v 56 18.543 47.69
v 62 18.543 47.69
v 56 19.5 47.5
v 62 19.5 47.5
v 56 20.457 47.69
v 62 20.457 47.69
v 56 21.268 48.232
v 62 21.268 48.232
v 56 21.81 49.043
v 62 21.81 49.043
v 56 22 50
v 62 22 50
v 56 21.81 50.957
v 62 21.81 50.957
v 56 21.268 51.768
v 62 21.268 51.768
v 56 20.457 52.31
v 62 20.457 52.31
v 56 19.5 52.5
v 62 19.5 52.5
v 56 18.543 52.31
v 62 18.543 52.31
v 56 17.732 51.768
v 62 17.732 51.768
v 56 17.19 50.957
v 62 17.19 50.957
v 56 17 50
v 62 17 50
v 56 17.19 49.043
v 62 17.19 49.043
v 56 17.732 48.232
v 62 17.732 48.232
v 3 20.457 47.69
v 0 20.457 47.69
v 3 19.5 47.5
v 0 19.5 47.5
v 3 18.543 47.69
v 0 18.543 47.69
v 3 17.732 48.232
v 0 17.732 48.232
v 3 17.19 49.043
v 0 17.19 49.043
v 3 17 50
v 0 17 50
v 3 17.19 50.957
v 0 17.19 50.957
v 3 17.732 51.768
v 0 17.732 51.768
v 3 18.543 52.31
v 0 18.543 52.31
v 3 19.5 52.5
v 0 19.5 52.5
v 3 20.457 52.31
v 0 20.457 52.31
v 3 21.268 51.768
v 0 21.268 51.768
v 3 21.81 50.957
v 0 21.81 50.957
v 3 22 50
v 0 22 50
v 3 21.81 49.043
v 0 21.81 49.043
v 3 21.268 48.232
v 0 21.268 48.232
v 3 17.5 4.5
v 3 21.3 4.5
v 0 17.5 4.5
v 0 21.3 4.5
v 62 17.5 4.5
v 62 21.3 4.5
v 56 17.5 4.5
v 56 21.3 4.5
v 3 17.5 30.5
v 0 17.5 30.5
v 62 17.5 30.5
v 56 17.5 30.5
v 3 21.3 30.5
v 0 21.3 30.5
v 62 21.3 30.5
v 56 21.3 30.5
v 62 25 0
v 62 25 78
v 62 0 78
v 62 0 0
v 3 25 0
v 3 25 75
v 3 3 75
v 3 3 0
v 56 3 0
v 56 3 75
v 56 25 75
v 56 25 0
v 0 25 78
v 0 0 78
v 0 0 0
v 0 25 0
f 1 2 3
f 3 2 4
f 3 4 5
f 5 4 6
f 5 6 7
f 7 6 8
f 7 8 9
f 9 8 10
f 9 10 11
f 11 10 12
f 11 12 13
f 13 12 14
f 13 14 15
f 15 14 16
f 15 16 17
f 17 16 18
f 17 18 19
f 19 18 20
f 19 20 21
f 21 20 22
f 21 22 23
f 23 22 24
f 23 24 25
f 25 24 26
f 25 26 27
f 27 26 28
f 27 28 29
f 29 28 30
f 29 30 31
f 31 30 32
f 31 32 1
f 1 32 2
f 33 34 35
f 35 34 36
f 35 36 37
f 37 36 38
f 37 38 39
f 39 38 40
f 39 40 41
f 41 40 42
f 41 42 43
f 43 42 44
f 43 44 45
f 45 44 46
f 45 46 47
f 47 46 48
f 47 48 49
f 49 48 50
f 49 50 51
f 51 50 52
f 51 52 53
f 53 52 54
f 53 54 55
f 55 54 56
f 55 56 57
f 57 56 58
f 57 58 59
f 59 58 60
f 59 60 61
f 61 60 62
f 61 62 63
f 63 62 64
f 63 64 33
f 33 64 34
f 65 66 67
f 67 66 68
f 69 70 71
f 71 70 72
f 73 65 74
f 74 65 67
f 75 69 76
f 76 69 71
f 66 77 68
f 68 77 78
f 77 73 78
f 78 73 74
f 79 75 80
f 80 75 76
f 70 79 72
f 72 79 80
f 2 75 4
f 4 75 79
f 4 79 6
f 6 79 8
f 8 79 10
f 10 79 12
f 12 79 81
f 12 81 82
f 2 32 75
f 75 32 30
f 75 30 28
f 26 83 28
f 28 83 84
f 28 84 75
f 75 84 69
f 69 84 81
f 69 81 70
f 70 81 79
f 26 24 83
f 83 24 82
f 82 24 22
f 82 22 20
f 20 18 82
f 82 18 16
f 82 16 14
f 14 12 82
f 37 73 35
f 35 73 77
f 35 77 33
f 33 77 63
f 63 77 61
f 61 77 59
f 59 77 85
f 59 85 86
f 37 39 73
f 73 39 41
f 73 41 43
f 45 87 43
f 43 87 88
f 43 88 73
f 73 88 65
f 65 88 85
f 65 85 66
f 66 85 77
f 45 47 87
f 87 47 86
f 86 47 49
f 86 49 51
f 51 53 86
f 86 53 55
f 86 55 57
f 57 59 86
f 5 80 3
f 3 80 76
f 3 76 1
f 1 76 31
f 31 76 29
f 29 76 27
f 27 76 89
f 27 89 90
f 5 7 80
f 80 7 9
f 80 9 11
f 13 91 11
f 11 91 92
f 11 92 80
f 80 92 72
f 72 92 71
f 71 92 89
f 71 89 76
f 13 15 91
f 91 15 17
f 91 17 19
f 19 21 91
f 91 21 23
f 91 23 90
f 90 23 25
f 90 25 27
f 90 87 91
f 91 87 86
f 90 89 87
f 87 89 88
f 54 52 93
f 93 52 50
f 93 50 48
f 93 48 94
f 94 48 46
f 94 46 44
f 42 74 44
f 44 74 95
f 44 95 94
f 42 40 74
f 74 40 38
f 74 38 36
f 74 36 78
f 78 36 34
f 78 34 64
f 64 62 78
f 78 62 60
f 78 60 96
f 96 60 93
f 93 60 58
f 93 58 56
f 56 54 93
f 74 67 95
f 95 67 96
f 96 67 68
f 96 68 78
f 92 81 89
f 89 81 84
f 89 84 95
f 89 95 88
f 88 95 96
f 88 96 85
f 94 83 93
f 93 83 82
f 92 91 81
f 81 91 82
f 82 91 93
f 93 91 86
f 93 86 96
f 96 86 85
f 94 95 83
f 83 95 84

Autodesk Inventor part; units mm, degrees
ref_plane "YZ Plane" through (0, 0, 0) normal (1, 0, 0) x (0, 1, 0)
ref_plane "XZ Plane" through (0, 0, 0) normal (0, 1, 0) x (-1, 0, 0)
ref_plane "XY Plane" through (0, 0, 0) normal (0, 0, 1) x (1, 0, 0)
sketch "Sketch2" plane through (0, 0, 0) normal (0, 1, 0) x (-1, 0, 0)
  line L0 (0, 0) -> (-59, 0)
  line L1 (-59, 0) -> (-59, 78)
  line L2 (-59, 78) -> (0, 78)
  line L3 (0, 78) -> (0, 0)
  dimension "d0" = 59
  dimension "d1" = 78
extrude "Extrusion1" add sketch "Sketch2" along normal blind 25
shell "Shell1" thickness 3 removed faces 1 at (39.3333, 25, 52)
sketch "Sketch4" plane through (59, 0, 0) normal (0, 0, -1) x (-1, 0, 0)
  point P0 (59, 0)
sketch "Sketch5" plane through (3, 3, 3) normal (0, 0, 1) x (1, 0, 0)
  line L0 (0, 0) -> (0, 22) projected
  line L1 (0, 22) -> (53, 22) projected
  line L2 (0, 0) -> (53, 0)
  line L3 (53, 0) -> (53, 22)
  line L4 (53, 22) -> (0, 22)
  line L5 (0, 22) -> (0, 0)
  point P0 (-3, -3)
extrude "Extrusion3" cut sketch "Sketch5" against normal blind 10
sketch "Sketch6" plane through (0, 0, 0) normal (-1, 0, 0) x (0, 0, 1)
  line L0 (4.5, 21.3) -> (30.5, 21.3)
  line L1 (30.5, 21.3) -> (30.5, 17.5)
  line L2 (30.5, 17.5) -> (4.5, 17.5)
  line L3 (4.5, 17.5) -> (4.5, 21.3)
  line L4 (0, 0) -> (0, 25) projected
  line L5 (0, 0) -> (78, 0) projected
  dimension "d19" = 26
  dimension "d20" = 3.8
  dimension "d21" = 4.5
  dimension "d22" = 17.5
sketch "Sketch7" plane through (59, 0, 78) normal (1, 0, 0) x (0, 0, -1)
  line L0 (0, 0) -> (78, 0) projected
  line L1 (0, 25) -> (78, 25)
  line L2 (78, 25) -> (78, 0)
  line L3 (78, 0) -> (0, 0)
  line L4 (0, 0) -> (0, 25)
extrude "Extrusion5" add sketch "Sketch7" along normal blind 3
extrude "Extrusion6" cut sketch "Sketch6" against normal through all
sketch "Sketch8" plane through (0, 0, 0) normal (-1, 0, 0) x (0, 0, 1)
  circle A0 centre (50, 19.5) radius 2.5
  point P0 (0, 0)
  dimension "d29" = 5
extrude "Extrusion7" cut sketch "Sketch8" against normal through all
properties part number "arduino box v06"
